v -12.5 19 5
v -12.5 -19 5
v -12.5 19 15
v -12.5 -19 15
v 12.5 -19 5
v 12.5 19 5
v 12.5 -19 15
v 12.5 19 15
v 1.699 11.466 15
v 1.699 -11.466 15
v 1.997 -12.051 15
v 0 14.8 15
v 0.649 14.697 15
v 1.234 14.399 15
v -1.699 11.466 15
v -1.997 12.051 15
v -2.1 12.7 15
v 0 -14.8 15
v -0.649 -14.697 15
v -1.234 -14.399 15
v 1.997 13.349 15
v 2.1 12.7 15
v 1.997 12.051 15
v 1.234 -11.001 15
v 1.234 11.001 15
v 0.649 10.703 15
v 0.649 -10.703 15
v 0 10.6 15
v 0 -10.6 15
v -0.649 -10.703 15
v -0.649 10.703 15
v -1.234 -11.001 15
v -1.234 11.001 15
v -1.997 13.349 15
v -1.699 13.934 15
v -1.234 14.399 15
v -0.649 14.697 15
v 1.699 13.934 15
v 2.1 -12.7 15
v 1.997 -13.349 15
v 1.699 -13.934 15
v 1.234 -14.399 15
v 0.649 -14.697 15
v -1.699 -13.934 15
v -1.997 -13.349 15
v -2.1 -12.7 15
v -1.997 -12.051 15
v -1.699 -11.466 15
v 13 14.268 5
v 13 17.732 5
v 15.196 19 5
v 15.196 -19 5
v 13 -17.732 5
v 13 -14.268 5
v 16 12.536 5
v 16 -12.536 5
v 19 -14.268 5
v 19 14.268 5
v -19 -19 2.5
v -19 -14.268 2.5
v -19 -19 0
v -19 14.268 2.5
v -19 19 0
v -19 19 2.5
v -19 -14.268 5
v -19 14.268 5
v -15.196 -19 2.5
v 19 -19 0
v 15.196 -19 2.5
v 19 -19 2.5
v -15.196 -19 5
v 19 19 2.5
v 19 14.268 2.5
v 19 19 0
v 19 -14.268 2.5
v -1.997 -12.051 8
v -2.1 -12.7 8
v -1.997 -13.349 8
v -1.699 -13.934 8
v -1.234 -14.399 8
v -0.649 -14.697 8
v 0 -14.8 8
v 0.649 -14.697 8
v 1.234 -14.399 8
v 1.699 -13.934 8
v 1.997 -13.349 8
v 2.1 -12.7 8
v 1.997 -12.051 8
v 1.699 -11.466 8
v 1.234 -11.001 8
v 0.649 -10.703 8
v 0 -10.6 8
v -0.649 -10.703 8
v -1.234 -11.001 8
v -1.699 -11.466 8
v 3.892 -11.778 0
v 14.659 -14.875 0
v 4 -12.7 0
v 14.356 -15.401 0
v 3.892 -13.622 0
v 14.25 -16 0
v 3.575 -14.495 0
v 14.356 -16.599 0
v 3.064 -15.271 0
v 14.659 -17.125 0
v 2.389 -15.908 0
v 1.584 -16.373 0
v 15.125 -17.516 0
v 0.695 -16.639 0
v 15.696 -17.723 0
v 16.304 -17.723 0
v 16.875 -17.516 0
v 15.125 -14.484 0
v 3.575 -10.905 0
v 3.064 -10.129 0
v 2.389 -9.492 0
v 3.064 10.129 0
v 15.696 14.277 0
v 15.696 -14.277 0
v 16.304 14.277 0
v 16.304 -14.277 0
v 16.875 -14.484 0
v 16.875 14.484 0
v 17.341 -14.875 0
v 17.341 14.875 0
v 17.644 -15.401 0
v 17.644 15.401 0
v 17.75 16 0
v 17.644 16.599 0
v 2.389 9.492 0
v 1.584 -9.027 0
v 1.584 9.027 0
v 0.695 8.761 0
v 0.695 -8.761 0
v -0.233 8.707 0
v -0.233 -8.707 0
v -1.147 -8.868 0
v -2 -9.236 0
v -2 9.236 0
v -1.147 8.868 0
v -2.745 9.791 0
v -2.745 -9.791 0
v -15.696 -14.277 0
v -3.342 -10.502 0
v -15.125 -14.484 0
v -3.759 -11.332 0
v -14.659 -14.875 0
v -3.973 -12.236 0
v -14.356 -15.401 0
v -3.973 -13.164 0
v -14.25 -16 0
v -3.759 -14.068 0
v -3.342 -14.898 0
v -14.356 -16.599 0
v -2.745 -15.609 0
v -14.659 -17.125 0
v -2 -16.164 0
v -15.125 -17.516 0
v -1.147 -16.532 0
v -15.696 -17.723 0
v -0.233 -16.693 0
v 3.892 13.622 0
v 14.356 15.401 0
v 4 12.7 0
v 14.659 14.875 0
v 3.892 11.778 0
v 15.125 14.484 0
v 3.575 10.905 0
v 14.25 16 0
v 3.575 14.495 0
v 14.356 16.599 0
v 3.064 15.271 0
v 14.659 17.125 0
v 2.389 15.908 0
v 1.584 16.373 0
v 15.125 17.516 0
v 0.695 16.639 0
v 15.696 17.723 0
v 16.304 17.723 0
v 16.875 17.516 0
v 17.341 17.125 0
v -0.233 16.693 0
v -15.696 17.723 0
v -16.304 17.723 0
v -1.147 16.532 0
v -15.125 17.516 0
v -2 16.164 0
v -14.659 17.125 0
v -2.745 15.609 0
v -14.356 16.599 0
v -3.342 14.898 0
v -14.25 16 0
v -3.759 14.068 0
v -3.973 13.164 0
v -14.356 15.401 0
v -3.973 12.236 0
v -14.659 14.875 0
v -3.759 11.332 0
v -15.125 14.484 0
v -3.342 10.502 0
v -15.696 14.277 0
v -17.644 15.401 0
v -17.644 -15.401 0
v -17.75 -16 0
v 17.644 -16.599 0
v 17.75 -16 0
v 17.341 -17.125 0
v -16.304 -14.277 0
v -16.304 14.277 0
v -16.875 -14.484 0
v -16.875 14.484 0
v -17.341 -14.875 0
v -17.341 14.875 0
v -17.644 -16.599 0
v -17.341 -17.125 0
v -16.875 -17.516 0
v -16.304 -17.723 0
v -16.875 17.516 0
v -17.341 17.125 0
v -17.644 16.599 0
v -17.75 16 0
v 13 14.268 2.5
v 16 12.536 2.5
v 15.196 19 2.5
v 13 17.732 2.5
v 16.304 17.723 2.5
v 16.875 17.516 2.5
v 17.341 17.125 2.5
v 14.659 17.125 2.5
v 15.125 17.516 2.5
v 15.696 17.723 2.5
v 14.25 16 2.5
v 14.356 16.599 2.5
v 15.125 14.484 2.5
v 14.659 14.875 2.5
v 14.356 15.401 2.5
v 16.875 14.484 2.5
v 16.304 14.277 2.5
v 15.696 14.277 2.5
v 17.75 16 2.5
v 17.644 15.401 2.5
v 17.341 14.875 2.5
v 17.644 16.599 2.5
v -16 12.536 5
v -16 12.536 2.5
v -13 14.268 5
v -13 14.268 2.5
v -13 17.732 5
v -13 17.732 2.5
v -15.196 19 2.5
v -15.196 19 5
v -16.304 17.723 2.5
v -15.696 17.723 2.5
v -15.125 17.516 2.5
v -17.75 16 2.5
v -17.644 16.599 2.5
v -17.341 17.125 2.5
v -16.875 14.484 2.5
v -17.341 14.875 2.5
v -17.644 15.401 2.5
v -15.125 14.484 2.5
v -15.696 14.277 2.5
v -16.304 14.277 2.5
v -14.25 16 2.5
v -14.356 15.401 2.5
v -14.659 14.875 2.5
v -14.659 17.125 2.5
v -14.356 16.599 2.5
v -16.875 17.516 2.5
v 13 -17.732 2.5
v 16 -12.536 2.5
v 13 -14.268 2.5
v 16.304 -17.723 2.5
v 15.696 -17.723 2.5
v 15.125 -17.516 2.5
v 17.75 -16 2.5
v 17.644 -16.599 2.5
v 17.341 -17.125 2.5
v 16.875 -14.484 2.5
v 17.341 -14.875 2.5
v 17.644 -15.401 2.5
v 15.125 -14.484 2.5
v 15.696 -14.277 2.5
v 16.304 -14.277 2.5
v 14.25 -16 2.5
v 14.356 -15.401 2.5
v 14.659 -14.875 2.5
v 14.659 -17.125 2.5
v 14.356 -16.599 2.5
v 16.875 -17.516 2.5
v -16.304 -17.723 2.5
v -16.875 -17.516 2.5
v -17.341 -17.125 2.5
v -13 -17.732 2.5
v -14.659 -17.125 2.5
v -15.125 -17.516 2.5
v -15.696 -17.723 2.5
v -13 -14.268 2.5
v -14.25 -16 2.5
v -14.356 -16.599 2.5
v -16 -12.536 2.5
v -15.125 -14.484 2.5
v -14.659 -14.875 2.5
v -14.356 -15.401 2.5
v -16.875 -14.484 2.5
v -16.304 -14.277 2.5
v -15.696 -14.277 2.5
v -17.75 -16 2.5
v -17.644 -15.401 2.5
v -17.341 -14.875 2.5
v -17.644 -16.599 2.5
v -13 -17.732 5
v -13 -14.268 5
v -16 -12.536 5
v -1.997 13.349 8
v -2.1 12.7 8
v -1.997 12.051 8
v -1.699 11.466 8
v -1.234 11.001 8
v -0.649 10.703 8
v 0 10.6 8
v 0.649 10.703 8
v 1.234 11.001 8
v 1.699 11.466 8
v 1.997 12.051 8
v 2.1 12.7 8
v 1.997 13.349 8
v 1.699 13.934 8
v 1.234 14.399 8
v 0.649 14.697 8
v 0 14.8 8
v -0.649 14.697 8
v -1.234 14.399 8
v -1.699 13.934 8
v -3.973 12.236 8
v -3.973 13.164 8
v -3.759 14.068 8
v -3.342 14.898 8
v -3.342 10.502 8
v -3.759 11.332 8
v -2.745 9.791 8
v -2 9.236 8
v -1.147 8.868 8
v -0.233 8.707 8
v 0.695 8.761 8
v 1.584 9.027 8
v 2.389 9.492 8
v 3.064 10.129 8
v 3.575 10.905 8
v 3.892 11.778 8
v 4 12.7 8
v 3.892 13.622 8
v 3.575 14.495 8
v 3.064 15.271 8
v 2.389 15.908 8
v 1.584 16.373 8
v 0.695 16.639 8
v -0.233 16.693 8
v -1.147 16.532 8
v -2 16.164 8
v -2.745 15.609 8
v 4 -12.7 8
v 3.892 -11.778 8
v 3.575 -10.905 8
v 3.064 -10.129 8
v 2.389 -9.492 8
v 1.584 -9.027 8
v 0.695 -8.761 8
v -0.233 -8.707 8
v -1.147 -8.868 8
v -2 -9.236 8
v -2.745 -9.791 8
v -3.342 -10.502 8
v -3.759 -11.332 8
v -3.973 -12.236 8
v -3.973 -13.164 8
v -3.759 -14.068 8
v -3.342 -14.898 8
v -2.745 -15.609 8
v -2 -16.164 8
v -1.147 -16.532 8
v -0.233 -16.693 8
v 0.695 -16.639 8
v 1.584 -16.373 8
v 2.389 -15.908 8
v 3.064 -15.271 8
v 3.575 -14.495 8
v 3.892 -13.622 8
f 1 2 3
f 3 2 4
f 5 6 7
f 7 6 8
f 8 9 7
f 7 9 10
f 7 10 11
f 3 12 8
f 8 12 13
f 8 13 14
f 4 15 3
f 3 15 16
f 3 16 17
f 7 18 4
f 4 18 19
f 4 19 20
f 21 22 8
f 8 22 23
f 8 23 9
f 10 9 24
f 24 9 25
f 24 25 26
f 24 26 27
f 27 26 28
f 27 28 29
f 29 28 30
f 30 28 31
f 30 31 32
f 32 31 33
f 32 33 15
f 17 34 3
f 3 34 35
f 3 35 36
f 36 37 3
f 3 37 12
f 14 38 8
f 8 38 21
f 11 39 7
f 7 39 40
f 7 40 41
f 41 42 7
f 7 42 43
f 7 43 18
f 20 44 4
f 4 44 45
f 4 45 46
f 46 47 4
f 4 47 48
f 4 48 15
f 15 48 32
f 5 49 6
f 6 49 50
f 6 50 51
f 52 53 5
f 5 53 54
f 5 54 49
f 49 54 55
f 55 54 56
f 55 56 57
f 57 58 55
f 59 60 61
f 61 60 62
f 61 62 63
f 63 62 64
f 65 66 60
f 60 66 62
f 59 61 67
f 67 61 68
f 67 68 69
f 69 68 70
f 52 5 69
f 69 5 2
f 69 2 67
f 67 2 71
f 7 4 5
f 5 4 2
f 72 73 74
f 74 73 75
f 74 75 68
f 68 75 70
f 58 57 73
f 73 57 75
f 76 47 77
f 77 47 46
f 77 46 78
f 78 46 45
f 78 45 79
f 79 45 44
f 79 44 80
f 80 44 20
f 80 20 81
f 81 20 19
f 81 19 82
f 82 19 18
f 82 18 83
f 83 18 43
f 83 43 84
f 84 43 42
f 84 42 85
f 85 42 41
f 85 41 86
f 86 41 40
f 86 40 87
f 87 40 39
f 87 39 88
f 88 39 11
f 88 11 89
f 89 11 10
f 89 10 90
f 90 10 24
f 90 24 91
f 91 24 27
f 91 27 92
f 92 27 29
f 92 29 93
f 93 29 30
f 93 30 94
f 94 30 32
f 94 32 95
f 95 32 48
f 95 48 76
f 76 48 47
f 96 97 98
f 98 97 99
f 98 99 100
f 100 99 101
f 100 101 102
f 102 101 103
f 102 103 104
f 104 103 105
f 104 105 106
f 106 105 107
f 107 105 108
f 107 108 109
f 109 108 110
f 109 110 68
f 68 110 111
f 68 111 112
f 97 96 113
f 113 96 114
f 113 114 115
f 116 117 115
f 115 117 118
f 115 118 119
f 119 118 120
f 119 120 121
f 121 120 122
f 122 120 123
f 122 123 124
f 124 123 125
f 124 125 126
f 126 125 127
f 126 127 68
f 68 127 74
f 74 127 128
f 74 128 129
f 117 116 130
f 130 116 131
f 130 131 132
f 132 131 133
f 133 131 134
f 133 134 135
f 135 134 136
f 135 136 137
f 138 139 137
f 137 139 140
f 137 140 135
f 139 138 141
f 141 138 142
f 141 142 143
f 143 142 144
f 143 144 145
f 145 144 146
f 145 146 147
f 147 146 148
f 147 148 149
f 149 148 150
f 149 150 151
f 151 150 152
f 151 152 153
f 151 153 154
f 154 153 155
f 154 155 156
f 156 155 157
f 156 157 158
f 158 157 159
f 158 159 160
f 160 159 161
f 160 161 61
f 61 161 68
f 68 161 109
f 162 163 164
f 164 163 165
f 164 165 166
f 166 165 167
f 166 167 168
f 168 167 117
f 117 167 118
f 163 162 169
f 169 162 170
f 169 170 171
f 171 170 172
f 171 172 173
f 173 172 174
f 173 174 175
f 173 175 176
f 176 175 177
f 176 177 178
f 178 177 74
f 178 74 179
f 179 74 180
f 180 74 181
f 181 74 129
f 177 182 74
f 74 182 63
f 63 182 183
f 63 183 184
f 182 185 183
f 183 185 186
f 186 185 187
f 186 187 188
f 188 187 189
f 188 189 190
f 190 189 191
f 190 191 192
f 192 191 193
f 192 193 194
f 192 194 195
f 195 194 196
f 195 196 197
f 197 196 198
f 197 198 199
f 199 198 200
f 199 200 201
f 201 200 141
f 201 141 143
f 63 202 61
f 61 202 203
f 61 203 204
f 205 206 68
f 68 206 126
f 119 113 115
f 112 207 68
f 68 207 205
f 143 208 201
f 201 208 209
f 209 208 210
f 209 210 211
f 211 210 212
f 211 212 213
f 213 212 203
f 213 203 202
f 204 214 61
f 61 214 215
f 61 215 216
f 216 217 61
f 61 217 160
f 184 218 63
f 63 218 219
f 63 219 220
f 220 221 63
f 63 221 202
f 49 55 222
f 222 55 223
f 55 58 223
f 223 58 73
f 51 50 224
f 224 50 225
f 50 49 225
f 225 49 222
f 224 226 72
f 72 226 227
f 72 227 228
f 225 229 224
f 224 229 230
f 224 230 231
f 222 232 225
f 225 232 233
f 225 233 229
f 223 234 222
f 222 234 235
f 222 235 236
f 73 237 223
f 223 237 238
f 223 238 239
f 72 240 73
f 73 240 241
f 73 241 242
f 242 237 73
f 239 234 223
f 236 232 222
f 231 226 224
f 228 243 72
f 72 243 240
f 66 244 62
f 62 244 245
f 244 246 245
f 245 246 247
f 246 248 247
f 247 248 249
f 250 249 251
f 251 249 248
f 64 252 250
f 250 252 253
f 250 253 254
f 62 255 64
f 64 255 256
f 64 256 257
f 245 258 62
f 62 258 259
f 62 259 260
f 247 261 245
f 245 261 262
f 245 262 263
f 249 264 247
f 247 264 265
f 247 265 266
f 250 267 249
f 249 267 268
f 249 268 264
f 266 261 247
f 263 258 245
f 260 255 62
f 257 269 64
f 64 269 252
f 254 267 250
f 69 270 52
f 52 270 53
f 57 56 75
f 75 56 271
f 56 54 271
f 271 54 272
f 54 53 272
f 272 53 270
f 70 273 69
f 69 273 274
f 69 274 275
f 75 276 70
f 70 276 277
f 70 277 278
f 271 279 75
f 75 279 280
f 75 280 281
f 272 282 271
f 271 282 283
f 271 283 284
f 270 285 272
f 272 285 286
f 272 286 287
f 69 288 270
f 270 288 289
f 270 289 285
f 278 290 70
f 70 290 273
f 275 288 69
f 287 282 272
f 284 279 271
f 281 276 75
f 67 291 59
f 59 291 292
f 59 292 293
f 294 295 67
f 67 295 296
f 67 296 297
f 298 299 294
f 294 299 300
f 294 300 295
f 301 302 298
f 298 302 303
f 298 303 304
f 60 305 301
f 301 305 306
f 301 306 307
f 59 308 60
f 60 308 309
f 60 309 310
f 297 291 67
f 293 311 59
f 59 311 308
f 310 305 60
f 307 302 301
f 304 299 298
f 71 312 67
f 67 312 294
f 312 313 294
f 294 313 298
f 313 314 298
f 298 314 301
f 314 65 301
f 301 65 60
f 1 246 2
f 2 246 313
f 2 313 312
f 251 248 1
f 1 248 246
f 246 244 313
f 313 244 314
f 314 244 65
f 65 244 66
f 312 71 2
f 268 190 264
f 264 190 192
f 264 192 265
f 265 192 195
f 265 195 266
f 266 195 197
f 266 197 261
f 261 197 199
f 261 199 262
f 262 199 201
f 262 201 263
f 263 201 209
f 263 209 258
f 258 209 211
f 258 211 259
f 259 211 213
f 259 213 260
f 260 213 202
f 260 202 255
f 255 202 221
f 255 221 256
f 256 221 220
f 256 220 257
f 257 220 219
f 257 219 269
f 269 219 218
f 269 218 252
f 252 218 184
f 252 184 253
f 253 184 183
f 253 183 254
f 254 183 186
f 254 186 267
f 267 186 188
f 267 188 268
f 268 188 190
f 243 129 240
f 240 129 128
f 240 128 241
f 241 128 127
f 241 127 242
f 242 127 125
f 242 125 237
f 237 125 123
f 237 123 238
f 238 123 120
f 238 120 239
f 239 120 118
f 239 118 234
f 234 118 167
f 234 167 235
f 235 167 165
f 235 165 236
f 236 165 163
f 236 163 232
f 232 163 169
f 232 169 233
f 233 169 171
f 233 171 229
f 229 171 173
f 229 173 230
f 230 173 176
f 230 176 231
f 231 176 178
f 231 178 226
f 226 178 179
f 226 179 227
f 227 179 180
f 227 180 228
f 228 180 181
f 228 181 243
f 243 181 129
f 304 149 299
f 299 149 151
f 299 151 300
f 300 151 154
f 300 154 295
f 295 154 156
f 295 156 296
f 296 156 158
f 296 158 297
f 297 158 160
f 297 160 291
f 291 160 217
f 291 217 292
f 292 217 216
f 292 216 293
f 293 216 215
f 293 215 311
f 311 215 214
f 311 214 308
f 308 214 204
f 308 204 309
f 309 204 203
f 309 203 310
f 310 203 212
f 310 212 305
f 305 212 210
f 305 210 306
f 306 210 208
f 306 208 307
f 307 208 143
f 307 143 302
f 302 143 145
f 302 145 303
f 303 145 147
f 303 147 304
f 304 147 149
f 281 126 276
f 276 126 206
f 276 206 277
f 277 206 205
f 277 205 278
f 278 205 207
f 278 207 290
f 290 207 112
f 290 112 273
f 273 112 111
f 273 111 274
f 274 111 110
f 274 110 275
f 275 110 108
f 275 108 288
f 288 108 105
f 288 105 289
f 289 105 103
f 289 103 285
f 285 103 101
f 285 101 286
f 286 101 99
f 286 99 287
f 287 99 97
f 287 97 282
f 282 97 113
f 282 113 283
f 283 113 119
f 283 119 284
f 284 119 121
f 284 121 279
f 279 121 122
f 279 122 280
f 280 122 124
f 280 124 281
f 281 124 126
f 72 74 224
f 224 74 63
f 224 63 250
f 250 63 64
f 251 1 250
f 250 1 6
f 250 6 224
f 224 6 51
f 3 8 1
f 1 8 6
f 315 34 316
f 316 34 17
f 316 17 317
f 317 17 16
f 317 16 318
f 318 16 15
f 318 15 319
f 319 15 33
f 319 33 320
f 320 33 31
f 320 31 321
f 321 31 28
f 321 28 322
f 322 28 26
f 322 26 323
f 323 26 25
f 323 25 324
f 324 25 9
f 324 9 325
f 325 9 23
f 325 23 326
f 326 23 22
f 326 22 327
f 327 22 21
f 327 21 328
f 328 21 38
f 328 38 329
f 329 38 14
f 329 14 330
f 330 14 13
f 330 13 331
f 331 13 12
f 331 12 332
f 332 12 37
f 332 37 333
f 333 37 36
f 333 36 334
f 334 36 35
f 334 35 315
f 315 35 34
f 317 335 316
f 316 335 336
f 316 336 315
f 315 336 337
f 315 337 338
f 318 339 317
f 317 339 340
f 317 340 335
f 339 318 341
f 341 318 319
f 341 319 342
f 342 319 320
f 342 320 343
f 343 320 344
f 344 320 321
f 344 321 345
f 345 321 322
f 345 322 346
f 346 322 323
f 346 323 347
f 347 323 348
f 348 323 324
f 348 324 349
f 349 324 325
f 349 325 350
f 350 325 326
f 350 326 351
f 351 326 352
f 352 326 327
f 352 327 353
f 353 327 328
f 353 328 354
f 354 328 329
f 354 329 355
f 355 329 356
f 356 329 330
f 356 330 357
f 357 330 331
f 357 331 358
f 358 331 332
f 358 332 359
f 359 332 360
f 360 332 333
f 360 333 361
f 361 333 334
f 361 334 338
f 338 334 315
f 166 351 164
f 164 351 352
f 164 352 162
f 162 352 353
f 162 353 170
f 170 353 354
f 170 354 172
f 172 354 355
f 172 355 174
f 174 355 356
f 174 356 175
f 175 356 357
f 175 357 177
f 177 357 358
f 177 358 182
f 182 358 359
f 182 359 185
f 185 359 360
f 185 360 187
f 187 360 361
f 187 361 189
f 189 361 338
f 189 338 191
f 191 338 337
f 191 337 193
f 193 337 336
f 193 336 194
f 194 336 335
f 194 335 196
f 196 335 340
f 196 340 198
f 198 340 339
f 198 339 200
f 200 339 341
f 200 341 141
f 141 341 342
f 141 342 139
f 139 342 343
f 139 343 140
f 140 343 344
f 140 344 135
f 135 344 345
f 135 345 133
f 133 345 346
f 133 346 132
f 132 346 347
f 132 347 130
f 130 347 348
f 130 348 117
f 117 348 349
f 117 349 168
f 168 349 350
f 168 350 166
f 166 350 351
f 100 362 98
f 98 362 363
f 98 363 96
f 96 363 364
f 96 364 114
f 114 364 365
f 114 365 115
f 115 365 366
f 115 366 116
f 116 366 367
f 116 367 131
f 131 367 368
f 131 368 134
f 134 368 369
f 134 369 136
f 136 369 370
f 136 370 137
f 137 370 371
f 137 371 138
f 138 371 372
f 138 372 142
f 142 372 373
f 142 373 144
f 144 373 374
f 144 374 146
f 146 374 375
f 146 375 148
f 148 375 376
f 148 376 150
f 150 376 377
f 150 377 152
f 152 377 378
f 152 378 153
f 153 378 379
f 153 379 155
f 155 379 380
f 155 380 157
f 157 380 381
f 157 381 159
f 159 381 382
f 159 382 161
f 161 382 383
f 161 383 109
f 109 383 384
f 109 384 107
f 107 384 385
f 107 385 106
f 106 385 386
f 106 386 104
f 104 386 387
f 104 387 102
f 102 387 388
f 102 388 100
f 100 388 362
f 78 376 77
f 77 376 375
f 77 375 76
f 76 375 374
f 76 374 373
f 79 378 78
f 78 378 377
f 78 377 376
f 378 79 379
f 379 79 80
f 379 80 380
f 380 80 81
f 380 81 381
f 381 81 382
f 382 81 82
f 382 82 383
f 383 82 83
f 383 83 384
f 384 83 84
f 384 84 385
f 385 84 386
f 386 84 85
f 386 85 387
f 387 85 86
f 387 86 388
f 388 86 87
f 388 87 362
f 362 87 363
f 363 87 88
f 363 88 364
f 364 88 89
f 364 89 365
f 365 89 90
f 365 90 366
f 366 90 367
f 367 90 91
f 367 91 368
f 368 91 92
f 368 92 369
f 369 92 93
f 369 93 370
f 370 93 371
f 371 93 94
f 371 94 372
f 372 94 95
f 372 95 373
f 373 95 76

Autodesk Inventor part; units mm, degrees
ref_plane "YZ Plane" through (0, 0, 0) normal (1, 0, 0) x (0, 1, 0)
ref_plane "XZ Plane" through (0, 0, 0) normal (0, 1, 0) x (-1, 0, 0)
ref_plane "XY Plane" through (0, 0, 0) normal (0, 0, 1) x (1, 0, 0)
sketch "Sketch5" plane through (0, 0, 0) normal (0, 0, 1) x (1, 0, 0)
  circle A0 centre (-16, 16) radius 1.75
  line L0 (-3.5516, 0) -> (2.966, 0)
  line L1 (0, 4.5757) -> (0, -5.4514)
  circle A1 centre (16, 16) radius 1.75
  circle A2 centre (-16, -16) radius 1.75
  circle A3 centre (16, -16) radius 1.75
  line L2 (19, -19) -> (-19, -19)
  line L3 (-19, -19) -> (-19, 19)
  line L4 (-19, 19) -> (19, 19)
  line L5 (19, 19) -> (19, -19)
  line L6 (19, -19) -> (-19, 19) construction
  line L7 (-19, -19) -> (19, 19) construction
  line L8 (4.0992, -12.7) -> (2.0496, -16.25)
  line L9 (2.0496, -16.25) -> (-2.0496, -16.25)
  line L10 (-2.0496, -16.25) -> (-4.0992, -12.7)
  line L11 (-4.0992, -12.7) -> (-2.0496, -9.15)
  line L12 (-2.0496, -9.15) -> (2.0496, -9.15)
  line L13 (2.0496, -9.15) -> (4.0992, -12.7)
  line L14 (4.0992, 12.7) -> (2.0496, 9.15)
  line L15 (2.0496, 9.15) -> (-2.0496, 9.15)
  line L16 (-2.0496, 9.15) -> (-4.0992, 12.7)
  line L17 (-4.0992, 12.7) -> (-2.0496, 16.25)
  line L18 (-2.0496, 16.25) -> (2.0496, 16.25)
  line L19 (2.0496, 16.25) -> (4.0992, 12.7)
  point P0 (0, 0)
  point P1 (0, 12.7)
  point P2 (0, -12.7)
  point P3 (0, -12.7)
  point P4 (0, 12.7)
  point P5 (0, -16.25)
  dimension "d47" = 3.5
  dimension "d50" = 32
  dimension "d53" = 32
  dimension "d56" = 16
  dimension "d57" = 16
  dimension "d58" = 38
  dimension "d59" = 38
  dimension "d73" = 7.1
  dimension "d74" = 7.1
extrude "Extrusion3" add sketch "Sketch5" along normal blind 5 contours L2 L3 L4 L5 | L8 L9 L10 L11 L12 L13 | L14 L15 L16 L17 L18 L19
sketch "Sketch6" plane through (0, 0, 5) normal (0, 0, 1) x (1, 0, 0)
  circle A0 centre (-16, 16) radius 1.75 projected
  line L0 (-16, 19.4641) -> (-13, 17.7321)
  line L1 (-13, 17.7321) -> (-13, 14.2679)
  line L2 (-13, 14.2679) -> (-16, 12.5359)
  line L3 (-16, 12.5359) -> (-19, 14.2679)
  line L4 (-19, 14.2679) -> (-19, 17.7321)
  line L5 (-19, 17.7321) -> (-16, 19.4641)
  line L6 (0, 4.5757) -> (0, -5.4514) projected
  line L7 (-3.5516, 0) -> (2.966, 0) projected
  line L8 (16, 19.4641) -> (19, 17.7321)
  line L9 (19, 17.7321) -> (19, 14.2679)
  line L10 (19, 14.2679) -> (16, 12.5359)
  line L11 (16, 12.5359) -> (13, 14.2679)
  line L12 (13, 14.2679) -> (13, 17.7321)
  line L13 (13, 17.7321) -> (16, 19.4641)
  line L14 (-16, -12.5359) -> (-13, -14.2679)
  line L15 (-13, -14.2679) -> (-13, -17.7321)
  line L16 (-13, -17.7321) -> (-16, -19.4641)
  line L17 (-16, -19.4641) -> (-19, -17.7321)
  line L18 (-19, -17.7321) -> (-19, -14.2679)
  line L19 (-19, -14.2679) -> (-16, -12.5359)
  line L20 (16, -12.5359) -> (19, -14.2679)
  line L21 (19, -14.2679) -> (19, -17.7321)
  line L22 (19, -17.7321) -> (16, -19.4641)
  line L23 (16, -19.4641) -> (13, -17.7321)
  line L24 (13, -17.7321) -> (13, -14.2679)
  line L25 (13, -14.2679) -> (16, -12.5359)
  point P0 (0, 0)
  point P1 (-13, 16)
  point P2 (16, 16)
  point P3 (16, 16)
  point P4 (19, 16)
  point P5 (-16, -16)
  point P6 (-16, -16)
  point P7 (-13, -16)
  point P8 (16, -16)
  point P9 (16, -16)
  point P10 (19, -16)
  dimension "d62" = 6
  dimension "d65" = 32
  dimension "d68" = 32
extrude "Extrusion4" cut sketch "Sketch6" against normal blind 2.5
hole "Hole4" at (0, 12.7, 0) at (0, -12.7, 0) direction (0, 0, 1) diameter 4.2 end through all
sketch "Sketch7" plane through (0, 0, 5) normal (0, 0, 1) x (1, 0, 0)
  line L0 (-16.8038, -19) -> (-19, -17.7321) projected
  line L1 (-19, -19) -> (-19, 19) projected
  line L2 (19, -19) -> (-19, -19) projected
  line L3 (19, -19) -> (-19, 19) construction
  line L4 (-19, 17.7321) -> (-16.8038, 19) projected
  line L5 (-19, 19) -> (19, 19) projected
  line L6 (16.8038, 19) -> (19, 17.7321) projected
  line L7 (19, 19) -> (19, -19) projected
  line L8 (19, -17.7321) -> (16.8038, -19) projected
  point P0 (0, 0)
extrude "Extrusion6" cut sketch "Sketch7" against normal up to surface (2.5 mm away) contours L2 L1 L0 | L8 L7 L2 | L1 L5 L4 | L6 L5 L7
sketch "Sketch8" plane through (0, 0, 5) normal (0, 0, 1) x (1, 0, 0)
  line L0 (15.1962, 19) -> (-15.1962, 19) projected
  line L1 (12.5, -19) -> (-12.5, -19)
  line L2 (-12.5, -19) -> (-12.5, 19)
  line L3 (-12.5, 19) -> (12.5, 19)
  line L4 (12.5, 19) -> (12.5, -19)
  line L5 (12.5, -19) -> (-12.5, 19) construction
  line L6 (-12.5, -19) -> (12.5, 19) construction
  circle A0 centre (0, 12.7) radius 2.1 projected
  circle A1 centre (0, -12.7) radius 2.1 projected
  point P0 (0, 0)
  dimension "d86" = 25
extrude "Extrusion7" add sketch "Sketch8" along normal blind 10
hole "Hole5" at (0, -12.7, 0) at (0, 12.7, 0) direction (0, 0, 1) diameter 8 depth 8
properties part number "RD-PDT-S-to-M4-bolts"
